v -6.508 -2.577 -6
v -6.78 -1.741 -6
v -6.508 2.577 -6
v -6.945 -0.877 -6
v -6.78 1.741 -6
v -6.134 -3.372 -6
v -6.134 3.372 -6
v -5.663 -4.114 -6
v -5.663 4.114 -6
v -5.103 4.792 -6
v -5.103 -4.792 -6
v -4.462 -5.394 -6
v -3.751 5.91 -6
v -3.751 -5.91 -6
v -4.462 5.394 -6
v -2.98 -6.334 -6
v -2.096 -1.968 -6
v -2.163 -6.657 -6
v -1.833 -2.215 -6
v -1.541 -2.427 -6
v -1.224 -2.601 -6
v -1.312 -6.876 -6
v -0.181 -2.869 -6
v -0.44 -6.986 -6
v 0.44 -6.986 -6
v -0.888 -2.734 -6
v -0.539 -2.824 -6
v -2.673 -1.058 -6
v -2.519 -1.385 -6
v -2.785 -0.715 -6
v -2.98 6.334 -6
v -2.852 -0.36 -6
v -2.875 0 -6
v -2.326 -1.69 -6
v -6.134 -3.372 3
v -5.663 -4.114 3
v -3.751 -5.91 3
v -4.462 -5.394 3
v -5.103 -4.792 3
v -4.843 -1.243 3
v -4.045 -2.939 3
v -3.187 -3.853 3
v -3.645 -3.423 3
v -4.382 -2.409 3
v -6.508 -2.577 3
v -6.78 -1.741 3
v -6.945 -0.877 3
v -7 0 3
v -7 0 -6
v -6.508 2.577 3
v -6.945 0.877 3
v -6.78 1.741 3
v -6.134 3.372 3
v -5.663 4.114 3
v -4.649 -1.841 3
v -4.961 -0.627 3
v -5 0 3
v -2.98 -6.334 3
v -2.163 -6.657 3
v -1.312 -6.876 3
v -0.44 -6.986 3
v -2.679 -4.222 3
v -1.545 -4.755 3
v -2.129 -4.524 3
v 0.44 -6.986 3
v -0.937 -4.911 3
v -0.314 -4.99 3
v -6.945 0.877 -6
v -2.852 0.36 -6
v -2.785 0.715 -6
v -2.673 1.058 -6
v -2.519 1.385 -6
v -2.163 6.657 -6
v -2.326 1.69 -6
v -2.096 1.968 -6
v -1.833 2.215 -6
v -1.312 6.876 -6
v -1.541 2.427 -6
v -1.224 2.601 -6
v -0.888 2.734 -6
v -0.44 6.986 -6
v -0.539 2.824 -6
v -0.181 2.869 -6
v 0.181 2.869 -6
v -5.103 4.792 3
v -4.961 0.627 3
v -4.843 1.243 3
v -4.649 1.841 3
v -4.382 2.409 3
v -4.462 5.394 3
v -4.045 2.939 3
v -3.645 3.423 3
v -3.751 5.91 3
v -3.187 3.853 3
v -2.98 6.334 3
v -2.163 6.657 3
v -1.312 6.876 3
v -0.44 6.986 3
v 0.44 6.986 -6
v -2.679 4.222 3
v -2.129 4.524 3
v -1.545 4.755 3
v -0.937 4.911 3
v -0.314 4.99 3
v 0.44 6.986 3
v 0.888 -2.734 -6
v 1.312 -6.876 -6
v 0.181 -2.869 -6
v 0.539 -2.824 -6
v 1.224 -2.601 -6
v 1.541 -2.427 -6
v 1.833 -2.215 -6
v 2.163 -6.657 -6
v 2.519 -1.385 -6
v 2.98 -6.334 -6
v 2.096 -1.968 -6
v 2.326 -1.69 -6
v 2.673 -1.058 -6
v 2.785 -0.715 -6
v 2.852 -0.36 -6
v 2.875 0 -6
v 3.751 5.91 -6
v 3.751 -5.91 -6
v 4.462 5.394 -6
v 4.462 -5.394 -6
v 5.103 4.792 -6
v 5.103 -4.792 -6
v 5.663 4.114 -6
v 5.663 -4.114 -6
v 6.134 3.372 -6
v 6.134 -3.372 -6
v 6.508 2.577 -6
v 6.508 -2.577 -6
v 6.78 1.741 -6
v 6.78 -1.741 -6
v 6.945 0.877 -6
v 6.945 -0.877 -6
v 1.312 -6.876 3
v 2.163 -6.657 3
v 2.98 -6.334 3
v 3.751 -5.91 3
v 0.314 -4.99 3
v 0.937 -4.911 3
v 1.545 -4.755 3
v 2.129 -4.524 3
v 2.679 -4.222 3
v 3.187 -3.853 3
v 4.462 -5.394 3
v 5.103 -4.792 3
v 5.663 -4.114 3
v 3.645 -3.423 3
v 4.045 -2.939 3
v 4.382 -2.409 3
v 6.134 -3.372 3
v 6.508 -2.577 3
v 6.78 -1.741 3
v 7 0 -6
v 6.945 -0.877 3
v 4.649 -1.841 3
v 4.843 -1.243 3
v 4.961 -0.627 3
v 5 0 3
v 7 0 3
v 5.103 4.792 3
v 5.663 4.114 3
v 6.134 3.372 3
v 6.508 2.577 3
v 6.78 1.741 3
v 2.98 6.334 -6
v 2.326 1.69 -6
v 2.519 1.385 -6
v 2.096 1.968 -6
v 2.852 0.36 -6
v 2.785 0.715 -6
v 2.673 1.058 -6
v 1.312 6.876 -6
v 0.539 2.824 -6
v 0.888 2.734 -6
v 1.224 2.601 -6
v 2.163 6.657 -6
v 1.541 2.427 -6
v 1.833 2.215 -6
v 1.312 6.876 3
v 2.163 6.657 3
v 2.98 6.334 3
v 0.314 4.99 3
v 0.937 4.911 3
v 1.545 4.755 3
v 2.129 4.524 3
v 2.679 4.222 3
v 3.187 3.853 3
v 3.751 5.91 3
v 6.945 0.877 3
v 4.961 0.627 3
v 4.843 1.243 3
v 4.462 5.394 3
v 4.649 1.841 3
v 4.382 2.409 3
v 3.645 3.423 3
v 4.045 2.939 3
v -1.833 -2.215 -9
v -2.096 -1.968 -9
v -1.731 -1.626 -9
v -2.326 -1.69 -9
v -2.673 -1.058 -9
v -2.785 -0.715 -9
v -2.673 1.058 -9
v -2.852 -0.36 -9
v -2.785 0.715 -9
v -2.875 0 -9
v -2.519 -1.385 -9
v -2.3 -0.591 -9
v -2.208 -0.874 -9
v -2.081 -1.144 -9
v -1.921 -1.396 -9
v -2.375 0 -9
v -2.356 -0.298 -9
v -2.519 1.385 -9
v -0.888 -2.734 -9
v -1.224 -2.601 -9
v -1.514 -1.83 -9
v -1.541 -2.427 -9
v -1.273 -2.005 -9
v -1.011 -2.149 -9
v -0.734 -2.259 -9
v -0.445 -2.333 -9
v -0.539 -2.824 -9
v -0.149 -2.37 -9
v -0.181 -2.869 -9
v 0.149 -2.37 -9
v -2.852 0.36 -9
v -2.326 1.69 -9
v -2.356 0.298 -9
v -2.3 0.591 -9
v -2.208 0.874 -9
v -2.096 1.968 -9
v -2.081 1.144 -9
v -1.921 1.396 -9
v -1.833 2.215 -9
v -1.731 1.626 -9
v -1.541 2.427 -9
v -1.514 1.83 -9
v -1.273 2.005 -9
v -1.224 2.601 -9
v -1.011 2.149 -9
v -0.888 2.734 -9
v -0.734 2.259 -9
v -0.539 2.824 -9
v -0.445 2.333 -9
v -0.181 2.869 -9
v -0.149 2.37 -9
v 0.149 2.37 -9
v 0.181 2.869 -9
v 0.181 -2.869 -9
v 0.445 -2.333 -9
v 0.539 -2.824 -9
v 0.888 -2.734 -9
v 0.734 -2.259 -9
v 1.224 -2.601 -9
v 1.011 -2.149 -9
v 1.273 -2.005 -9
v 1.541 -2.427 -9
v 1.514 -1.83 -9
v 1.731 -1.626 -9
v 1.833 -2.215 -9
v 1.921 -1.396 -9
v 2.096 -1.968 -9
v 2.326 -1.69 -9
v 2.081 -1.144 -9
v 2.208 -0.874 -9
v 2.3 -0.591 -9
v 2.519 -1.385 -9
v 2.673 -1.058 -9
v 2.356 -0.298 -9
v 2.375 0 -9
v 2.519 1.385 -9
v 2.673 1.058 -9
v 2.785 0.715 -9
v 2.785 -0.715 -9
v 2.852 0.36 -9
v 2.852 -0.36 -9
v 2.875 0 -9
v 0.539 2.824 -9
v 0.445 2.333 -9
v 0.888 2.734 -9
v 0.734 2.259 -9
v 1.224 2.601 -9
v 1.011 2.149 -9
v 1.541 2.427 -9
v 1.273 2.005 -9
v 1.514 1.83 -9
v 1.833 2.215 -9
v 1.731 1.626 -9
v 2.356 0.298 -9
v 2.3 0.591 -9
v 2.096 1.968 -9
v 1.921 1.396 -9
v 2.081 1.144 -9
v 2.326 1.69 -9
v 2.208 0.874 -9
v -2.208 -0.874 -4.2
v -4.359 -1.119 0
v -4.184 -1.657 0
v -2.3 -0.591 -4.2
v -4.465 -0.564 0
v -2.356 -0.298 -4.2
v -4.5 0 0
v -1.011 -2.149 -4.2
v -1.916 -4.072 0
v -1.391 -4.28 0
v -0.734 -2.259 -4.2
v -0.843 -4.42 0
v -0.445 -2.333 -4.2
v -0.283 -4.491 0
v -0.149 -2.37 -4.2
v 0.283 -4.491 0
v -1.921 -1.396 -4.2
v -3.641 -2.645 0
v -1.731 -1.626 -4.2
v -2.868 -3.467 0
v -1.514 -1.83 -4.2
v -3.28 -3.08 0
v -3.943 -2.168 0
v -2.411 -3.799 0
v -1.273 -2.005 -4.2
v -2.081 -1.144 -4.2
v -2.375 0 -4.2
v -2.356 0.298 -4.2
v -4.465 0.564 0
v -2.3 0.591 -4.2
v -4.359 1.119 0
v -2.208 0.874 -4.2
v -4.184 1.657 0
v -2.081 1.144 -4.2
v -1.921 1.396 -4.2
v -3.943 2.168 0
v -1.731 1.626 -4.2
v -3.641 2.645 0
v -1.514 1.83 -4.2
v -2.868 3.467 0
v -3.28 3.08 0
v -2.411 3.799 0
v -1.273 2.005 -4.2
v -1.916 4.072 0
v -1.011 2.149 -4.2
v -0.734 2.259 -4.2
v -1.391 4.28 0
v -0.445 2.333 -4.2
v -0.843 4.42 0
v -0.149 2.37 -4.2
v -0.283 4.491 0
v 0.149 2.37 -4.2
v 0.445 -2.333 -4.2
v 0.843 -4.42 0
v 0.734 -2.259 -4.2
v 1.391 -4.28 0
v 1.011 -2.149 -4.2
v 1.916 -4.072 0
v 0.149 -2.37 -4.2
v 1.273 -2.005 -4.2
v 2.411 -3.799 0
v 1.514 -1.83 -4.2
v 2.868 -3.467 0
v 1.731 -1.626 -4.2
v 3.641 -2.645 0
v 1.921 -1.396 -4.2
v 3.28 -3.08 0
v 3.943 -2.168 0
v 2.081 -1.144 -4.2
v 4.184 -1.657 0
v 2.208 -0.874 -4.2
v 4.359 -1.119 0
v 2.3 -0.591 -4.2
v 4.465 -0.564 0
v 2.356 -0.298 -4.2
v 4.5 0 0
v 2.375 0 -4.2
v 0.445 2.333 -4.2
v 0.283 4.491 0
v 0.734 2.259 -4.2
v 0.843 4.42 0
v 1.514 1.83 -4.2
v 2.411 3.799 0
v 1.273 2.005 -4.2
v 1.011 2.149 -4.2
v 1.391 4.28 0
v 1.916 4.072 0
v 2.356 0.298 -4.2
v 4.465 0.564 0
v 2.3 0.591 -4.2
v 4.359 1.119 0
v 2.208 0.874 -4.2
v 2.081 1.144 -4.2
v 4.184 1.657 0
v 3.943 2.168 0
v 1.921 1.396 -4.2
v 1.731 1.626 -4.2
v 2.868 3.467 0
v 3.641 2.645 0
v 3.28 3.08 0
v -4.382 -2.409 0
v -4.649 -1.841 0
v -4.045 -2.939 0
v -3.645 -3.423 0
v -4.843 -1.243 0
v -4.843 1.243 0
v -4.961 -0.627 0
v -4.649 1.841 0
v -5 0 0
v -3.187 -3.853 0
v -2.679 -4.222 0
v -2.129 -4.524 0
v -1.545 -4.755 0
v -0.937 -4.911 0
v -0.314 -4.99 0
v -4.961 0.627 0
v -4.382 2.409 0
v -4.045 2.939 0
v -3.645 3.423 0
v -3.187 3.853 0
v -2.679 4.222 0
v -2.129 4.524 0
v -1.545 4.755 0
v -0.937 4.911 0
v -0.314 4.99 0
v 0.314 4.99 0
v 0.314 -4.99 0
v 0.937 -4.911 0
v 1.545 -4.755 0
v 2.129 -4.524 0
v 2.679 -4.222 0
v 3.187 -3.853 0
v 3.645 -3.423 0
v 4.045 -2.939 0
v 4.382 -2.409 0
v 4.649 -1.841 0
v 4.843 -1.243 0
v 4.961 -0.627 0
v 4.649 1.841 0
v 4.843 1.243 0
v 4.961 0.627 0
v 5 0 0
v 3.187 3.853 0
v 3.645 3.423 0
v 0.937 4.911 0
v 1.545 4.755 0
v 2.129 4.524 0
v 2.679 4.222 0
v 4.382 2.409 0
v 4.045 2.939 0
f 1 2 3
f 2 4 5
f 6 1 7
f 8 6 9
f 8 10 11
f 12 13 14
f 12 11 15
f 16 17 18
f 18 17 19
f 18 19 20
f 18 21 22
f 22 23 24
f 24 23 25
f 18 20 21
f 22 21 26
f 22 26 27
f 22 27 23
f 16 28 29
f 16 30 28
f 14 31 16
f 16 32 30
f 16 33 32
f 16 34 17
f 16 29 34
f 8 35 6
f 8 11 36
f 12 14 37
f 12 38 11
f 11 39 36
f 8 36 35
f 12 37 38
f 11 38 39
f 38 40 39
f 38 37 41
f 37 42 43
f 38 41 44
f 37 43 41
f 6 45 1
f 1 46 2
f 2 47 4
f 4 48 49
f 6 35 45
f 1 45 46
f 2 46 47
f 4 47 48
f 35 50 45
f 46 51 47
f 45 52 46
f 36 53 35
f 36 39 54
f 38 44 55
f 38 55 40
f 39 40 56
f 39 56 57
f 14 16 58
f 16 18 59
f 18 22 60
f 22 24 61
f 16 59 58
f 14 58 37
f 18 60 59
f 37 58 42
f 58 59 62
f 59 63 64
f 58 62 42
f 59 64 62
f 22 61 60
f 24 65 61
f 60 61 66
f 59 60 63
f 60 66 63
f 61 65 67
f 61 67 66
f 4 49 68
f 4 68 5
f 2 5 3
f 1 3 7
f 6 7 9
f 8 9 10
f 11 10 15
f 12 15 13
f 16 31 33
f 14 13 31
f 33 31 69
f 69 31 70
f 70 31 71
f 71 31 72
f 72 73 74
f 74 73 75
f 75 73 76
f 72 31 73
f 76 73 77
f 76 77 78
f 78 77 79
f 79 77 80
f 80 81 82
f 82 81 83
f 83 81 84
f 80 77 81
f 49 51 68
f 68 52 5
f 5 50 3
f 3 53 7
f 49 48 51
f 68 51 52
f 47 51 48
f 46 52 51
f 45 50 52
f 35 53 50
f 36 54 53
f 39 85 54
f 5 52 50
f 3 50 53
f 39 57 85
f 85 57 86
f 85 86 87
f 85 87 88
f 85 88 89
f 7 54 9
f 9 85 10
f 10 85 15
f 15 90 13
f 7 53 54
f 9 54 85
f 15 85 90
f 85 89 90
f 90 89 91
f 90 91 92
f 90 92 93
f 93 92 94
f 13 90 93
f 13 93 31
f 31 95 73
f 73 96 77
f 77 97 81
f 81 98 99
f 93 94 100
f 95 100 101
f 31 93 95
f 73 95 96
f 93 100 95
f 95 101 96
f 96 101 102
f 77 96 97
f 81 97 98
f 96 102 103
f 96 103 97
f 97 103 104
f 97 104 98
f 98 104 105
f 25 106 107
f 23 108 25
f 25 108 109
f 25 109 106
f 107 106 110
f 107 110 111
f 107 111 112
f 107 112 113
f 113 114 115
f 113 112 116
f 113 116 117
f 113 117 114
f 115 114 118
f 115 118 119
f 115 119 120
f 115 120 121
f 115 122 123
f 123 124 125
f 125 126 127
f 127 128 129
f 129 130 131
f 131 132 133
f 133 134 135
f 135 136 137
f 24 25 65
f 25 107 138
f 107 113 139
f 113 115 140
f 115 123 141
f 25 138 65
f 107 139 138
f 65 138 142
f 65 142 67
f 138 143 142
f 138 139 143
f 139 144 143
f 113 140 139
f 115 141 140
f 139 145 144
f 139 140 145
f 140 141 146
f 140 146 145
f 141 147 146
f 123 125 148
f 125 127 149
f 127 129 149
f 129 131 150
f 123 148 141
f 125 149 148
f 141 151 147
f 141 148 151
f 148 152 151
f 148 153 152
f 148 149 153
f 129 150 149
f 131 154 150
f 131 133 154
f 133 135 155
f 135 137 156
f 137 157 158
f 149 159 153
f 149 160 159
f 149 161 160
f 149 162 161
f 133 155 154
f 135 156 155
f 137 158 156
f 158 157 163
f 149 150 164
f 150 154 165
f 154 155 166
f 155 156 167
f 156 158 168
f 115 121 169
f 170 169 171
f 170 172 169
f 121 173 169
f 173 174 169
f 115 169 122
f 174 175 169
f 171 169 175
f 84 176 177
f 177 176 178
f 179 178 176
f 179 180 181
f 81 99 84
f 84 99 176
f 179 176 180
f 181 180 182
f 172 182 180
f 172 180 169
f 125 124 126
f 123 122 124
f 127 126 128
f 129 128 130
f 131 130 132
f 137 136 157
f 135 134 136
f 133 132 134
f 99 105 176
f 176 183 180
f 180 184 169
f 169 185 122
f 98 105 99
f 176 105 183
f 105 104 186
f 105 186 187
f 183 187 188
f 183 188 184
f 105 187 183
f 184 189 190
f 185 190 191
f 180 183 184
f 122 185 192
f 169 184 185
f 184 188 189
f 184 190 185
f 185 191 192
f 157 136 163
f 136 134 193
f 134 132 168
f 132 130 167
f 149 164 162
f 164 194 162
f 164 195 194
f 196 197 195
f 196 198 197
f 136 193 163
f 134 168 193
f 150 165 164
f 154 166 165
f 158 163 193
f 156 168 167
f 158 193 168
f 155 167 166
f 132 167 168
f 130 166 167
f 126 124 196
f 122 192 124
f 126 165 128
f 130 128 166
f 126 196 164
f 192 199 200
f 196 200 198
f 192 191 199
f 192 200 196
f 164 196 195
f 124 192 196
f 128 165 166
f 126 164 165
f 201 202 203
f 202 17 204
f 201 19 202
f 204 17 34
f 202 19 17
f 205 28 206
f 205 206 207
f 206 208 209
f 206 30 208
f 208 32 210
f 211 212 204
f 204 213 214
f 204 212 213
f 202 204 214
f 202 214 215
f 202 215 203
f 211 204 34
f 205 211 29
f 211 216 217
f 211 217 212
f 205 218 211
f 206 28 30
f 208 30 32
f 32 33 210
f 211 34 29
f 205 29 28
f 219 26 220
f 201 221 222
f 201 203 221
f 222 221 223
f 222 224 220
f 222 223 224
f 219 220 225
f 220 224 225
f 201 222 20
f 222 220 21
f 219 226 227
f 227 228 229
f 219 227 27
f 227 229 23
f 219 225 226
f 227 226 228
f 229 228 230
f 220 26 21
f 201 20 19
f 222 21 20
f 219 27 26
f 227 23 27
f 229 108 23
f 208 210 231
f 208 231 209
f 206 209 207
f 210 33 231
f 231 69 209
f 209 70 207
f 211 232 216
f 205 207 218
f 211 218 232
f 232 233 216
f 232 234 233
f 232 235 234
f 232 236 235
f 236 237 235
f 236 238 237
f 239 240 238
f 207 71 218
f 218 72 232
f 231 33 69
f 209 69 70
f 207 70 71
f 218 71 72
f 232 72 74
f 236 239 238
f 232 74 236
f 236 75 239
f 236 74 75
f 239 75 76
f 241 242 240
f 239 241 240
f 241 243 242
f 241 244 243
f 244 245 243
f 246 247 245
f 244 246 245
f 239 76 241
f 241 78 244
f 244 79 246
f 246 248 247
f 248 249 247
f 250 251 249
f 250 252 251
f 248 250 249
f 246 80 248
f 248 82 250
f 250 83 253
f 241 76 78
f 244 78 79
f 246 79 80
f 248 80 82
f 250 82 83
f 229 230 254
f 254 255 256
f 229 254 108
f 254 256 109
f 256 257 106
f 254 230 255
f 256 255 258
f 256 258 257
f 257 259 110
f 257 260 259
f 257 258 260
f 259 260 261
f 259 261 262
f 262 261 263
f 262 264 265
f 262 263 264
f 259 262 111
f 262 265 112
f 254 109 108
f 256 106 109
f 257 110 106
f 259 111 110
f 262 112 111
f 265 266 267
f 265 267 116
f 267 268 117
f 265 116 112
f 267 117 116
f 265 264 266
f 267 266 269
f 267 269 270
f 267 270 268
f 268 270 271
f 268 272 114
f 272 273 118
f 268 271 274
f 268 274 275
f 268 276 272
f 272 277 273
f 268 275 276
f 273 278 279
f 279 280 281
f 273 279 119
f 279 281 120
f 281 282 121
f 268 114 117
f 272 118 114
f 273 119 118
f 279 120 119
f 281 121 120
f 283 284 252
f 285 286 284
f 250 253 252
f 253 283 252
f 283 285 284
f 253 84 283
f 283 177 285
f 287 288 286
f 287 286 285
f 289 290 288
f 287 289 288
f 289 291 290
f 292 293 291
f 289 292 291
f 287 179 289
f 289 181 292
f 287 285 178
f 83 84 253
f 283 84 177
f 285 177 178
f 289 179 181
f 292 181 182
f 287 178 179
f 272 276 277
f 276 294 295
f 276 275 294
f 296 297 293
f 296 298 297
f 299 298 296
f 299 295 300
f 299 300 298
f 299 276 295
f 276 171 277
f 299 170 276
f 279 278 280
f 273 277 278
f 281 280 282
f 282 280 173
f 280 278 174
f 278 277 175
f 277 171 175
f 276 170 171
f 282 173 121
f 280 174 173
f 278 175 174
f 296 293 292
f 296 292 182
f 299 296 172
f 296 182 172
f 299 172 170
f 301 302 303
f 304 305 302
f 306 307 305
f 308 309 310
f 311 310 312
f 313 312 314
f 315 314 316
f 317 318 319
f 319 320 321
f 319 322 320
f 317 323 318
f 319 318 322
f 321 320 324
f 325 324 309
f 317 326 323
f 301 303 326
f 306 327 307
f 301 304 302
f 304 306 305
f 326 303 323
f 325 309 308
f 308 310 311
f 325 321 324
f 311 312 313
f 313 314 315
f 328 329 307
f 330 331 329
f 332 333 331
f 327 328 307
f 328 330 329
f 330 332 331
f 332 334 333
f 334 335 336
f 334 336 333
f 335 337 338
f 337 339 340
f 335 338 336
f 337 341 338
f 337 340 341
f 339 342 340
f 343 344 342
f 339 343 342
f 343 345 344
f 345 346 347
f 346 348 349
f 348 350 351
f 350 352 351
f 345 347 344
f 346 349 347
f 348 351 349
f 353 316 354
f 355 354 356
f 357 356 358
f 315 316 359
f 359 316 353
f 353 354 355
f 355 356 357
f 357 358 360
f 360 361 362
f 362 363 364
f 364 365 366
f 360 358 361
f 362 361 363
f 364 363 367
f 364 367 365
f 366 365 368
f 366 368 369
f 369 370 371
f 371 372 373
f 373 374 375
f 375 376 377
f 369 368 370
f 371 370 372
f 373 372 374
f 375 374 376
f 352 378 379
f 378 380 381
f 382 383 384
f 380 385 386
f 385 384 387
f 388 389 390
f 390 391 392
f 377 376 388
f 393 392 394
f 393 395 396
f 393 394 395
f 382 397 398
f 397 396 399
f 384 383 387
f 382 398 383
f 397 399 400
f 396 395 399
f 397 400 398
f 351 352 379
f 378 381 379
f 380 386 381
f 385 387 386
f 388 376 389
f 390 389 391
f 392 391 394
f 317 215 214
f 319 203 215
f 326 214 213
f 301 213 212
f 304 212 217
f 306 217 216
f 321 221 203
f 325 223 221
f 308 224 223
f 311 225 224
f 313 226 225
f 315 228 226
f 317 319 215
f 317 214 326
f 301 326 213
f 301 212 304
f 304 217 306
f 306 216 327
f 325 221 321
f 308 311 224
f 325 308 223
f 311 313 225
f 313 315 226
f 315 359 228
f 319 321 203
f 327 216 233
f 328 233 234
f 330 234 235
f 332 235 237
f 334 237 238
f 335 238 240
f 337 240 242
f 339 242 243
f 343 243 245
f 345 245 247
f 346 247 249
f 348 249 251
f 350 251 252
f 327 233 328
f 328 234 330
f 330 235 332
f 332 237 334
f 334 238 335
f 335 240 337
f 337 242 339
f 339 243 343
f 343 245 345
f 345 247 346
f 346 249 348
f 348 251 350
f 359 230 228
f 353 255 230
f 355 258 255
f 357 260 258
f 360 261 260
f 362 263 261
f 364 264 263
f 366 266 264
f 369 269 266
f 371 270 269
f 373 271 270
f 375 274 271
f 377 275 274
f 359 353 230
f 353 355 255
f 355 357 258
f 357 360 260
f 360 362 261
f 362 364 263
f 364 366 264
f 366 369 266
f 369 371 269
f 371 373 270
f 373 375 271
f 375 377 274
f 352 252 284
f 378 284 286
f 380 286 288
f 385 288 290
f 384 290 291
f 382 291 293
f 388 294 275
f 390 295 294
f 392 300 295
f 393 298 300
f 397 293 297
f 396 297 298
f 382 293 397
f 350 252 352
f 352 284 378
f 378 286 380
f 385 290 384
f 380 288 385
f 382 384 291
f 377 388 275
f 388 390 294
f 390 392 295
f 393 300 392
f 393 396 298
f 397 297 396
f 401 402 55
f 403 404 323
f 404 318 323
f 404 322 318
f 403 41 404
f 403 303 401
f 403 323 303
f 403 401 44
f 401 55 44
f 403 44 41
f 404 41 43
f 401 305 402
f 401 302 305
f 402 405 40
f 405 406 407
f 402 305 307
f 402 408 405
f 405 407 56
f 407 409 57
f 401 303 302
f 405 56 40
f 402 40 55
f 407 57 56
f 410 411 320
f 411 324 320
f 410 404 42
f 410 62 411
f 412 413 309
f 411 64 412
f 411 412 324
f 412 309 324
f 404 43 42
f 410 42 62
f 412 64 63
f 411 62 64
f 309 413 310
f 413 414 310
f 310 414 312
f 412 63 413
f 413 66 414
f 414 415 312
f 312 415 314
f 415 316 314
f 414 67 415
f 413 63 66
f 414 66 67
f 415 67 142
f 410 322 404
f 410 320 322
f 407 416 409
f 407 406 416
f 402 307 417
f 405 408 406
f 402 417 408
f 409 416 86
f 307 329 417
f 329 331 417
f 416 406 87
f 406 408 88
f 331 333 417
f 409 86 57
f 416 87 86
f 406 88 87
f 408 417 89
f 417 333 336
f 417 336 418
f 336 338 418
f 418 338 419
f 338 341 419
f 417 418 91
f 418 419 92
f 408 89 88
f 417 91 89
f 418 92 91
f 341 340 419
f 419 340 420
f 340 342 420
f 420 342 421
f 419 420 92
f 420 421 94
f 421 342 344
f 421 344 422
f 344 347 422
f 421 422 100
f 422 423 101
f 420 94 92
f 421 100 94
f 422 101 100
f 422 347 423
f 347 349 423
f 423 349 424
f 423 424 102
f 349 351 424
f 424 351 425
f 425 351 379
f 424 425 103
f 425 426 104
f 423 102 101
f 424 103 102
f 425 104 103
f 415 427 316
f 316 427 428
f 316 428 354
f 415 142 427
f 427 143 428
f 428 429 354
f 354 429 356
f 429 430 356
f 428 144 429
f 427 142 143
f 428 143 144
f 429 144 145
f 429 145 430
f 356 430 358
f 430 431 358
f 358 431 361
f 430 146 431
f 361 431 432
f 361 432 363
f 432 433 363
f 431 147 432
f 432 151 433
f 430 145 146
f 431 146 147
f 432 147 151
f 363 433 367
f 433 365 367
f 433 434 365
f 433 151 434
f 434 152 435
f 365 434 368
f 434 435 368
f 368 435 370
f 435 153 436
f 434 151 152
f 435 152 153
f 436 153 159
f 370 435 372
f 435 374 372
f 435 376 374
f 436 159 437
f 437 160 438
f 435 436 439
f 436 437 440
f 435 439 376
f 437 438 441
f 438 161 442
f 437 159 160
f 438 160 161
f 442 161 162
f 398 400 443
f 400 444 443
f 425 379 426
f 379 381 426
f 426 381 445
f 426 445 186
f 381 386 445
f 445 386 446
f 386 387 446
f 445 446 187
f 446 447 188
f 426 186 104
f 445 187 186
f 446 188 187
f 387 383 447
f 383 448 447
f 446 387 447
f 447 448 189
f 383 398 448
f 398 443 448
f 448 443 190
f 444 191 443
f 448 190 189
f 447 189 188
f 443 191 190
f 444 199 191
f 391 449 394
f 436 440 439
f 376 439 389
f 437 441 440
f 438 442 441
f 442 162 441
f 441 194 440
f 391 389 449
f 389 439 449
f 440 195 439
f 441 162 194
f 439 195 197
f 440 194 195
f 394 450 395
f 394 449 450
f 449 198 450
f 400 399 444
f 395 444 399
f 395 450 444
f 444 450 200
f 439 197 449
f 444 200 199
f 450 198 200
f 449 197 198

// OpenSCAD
$fn = 50;

difference() {
	union() {
		translate(v = [0, 0, -6.0]) {
			cylinder(h = 9, r = 7.0);
		}
		#translate(v = [0, 0, -9.0]) {
			cylinder(h = 9, r = 2.875);
		}
	}
	union() {
		translate(v = [0, 0, 0]) {
			rotate(a = [0, 0, 0]) {
				difference() {
					union() {
						translate(v = [0, 0, -9.0]) {
							cylinder(h = 9, r = 2.25);
						}
						translate(v = [0, 0, -4.2]) {
							cylinder(h = 4.2, r1 = 2.375, r2 = 4.5);
						}
						translate(v = [0, 0, -9.0]) {
							cylinder(h = 9, r = 2.375);
						}
						translate(v = [0, 0, -9.0]) {
							cylinder(h = 9, r = 2.25);
						}
					}
					union();
				}
			}
		}
		#cylinder(h = 3, r = 5.0);
	}
}
